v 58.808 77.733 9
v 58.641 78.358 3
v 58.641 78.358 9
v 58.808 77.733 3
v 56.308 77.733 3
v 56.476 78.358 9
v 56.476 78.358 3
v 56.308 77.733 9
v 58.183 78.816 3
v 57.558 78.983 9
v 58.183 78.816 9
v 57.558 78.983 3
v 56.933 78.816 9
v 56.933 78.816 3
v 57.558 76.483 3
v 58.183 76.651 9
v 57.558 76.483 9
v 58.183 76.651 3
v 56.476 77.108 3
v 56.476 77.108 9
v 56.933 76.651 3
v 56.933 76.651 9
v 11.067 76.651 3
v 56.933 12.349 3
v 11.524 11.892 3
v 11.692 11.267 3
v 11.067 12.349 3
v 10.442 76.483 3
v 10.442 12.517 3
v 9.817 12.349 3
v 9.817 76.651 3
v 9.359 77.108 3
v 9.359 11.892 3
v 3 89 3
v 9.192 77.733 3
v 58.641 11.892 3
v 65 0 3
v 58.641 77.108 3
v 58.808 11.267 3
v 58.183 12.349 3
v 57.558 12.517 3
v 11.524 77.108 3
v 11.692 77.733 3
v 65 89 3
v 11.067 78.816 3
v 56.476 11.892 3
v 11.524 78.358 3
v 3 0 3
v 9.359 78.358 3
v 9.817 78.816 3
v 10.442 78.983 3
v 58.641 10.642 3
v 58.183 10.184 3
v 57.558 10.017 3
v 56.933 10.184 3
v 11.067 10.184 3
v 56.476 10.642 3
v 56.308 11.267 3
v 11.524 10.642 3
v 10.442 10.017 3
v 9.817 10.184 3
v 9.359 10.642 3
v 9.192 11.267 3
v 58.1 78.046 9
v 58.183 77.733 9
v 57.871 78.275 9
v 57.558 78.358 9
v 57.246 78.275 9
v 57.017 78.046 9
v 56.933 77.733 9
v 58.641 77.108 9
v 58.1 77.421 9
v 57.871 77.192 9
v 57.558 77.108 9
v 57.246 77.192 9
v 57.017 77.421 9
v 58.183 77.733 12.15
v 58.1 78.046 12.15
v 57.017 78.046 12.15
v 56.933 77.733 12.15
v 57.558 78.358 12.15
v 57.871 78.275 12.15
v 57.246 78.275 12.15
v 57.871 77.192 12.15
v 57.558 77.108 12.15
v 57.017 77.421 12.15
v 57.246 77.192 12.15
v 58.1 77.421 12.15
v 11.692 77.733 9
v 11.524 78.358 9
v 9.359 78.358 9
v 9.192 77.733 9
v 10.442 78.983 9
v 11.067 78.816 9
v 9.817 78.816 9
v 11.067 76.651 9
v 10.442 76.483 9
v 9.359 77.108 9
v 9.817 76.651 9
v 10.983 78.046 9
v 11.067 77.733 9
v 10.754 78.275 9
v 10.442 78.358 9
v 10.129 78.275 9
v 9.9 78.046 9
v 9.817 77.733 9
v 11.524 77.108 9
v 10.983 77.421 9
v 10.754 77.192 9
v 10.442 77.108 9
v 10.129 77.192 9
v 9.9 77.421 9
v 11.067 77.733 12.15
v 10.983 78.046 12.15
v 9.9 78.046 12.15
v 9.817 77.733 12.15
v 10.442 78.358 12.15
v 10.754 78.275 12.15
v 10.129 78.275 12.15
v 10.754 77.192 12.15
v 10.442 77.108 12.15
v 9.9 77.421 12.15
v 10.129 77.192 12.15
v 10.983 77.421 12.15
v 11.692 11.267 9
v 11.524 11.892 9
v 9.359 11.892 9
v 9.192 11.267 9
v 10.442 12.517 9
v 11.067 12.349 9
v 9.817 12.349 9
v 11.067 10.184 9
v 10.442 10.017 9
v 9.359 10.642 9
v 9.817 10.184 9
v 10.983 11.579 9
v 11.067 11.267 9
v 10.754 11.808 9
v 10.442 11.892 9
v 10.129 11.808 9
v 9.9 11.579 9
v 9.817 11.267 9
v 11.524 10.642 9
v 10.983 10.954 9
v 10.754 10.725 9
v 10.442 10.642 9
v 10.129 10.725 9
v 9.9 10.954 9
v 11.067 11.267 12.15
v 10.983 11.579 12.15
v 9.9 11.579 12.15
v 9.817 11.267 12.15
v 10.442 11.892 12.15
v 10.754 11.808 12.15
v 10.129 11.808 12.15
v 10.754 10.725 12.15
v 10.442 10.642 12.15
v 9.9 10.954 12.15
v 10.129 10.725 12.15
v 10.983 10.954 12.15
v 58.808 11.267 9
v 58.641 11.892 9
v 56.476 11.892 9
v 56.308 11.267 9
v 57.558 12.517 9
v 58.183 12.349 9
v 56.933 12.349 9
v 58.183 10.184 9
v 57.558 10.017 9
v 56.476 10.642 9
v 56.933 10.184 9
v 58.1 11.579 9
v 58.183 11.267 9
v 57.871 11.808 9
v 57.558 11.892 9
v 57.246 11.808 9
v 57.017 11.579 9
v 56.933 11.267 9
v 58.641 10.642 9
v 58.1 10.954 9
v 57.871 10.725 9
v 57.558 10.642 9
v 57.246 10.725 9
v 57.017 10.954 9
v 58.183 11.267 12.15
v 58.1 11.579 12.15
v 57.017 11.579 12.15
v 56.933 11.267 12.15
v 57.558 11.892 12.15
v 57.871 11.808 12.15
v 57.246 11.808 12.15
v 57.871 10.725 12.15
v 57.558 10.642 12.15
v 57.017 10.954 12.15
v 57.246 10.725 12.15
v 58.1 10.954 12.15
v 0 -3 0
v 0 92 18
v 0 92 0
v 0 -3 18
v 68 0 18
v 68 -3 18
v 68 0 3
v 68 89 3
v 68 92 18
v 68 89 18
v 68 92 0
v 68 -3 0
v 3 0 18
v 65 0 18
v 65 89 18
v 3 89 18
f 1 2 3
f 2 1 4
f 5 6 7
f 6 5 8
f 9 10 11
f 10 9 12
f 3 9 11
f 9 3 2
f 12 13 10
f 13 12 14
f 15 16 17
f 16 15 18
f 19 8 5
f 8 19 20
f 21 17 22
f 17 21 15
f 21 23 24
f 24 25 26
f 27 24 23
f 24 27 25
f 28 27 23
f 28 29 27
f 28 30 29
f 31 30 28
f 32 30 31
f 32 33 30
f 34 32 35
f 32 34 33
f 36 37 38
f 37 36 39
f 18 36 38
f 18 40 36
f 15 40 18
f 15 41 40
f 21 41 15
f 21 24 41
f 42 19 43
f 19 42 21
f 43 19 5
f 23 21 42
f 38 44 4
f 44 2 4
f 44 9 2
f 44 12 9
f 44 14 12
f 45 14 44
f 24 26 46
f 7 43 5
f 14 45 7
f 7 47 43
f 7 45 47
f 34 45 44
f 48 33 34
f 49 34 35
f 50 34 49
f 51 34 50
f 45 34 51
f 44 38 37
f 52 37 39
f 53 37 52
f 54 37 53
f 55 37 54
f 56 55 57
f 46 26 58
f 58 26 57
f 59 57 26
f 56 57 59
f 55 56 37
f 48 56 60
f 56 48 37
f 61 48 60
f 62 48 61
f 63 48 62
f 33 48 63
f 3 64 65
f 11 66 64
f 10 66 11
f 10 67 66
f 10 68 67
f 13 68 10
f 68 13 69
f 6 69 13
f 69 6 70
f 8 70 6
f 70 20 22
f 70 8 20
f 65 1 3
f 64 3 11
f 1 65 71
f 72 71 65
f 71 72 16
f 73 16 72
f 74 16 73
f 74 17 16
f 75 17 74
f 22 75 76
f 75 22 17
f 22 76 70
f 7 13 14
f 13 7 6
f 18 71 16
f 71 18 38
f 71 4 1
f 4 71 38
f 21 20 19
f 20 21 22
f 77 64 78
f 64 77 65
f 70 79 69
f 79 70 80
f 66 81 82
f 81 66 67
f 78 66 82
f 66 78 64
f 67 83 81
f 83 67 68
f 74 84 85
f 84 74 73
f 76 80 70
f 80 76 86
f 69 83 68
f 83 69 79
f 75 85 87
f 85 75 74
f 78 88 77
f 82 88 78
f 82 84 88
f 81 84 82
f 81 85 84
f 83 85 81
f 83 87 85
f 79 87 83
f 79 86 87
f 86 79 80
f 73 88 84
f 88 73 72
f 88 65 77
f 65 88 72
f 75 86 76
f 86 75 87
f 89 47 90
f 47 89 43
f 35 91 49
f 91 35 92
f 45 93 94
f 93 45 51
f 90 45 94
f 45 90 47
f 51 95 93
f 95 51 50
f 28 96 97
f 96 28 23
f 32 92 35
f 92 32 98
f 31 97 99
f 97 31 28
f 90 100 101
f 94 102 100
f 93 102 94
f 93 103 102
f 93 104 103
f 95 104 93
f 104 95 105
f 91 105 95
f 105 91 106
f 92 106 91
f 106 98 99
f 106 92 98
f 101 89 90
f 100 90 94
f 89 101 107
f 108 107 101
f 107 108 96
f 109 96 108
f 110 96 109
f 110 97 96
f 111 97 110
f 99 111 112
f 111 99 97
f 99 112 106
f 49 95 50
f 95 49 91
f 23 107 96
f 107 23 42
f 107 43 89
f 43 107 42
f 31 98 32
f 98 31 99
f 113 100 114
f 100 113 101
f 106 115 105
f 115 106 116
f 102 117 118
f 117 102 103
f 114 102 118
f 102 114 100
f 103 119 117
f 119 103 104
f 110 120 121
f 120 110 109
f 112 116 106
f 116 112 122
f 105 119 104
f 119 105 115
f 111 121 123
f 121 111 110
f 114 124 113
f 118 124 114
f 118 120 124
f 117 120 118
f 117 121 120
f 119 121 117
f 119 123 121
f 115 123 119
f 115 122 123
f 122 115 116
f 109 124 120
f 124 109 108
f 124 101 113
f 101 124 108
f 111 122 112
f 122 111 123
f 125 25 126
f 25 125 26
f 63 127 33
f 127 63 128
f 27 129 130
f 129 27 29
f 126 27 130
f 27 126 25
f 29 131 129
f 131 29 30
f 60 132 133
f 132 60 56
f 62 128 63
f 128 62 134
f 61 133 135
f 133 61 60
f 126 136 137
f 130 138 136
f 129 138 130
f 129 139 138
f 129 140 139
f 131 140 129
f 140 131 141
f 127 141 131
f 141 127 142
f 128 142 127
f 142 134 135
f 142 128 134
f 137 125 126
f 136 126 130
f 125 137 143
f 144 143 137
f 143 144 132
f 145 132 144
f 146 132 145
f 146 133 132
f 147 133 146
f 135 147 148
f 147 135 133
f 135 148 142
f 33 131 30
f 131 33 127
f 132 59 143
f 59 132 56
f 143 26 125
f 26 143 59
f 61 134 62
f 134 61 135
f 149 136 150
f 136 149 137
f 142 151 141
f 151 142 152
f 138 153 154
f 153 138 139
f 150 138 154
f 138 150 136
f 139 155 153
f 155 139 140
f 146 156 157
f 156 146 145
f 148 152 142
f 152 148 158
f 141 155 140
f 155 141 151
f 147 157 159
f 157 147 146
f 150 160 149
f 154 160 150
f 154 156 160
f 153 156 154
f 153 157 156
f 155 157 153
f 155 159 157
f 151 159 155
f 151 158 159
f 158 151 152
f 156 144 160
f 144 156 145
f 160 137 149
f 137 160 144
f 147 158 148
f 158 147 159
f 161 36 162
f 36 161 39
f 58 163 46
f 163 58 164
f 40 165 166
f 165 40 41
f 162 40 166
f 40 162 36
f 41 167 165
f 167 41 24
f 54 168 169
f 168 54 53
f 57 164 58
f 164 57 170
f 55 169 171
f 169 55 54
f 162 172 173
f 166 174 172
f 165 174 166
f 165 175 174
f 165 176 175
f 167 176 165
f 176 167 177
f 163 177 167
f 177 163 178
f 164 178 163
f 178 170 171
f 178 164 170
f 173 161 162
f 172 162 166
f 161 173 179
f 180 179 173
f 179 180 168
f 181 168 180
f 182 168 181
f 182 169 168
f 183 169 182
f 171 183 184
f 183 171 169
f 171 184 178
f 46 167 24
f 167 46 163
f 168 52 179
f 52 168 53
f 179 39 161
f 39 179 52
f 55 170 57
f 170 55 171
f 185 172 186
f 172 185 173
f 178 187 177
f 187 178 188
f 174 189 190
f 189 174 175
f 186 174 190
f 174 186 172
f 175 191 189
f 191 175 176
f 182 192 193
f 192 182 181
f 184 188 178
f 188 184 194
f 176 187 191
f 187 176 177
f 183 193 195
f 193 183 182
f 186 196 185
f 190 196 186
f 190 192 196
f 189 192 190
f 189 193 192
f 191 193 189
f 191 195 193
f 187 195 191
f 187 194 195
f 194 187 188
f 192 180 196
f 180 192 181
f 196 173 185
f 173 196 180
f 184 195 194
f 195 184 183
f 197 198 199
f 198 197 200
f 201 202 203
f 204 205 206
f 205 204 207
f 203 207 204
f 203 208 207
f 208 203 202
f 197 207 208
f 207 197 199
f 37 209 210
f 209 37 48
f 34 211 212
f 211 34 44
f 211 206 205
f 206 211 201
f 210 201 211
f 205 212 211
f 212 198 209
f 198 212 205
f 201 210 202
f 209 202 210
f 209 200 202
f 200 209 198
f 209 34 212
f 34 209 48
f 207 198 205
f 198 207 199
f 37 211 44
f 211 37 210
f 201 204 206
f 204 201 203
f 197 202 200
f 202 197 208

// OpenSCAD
// file: case-module.scad
include <proto-board-module.scad>;

caseSecureHoleConnectionPinWidth = 1.25;
caseSecureHoleConnectionPinHeight = 6;
caseSecureHoleConnectionBaseWidth = caseSecureHoleConnectionPinWidth * 2;
caseSecureHoleConnectionBaseHeight = 6;
caseWidth = 68;
caseHeight = 3;
caseLength = 89;
caseWallHeight = 18;
caseWallWidth = 3;

module pinHolder () {
  baseHeight = protoBoardHeight + 1;
  cylinder (
    h = caseSecureHoleConnectionBaseHeight,
    r = caseSecureHoleConnectionBaseWidth / 2,
    $fn = 12
  );
  translate([0, 0, baseHeight])
    cylinder (
      h = caseSecureHoleConnectionPinHeight + 1,
      r = caseSecureHoleConnectionPinWidth / 2,
    $fn = 12
    );
}

module case (color = "LightSeaGreen") {
  color (color) {
    // Base
    cube([caseWidth, caseLength, caseHeight]);
    // Walls
    rotate([0, 0, 0]) cube([caseWallWidth, caseLength, caseWallHeight]);
    translate([caseWidth, caseLength, 0])
      rotate([0, 0, 90]) 
        cube([caseWallWidth, caseWidth, caseWallHeight]);
    translate([caseWidth, caseLength, 0]) 
      rotate([0, 0, 180]) 
        cube([caseWallWidth, caseLength, caseWallHeight]);
    translate([0, 0, 0])
      rotate([0, 0, 270])
        cube([caseWallWidth, caseWidth, caseWallHeight]);
    // Connection Pins Base
    // Top right pin holder
    translate([
        caseWidth - (caseSecureHoleConnectionBaseWidth / 2) - ((caseWidth - protoBoardWidth) / 2) - (protoBoardSecureHoleInset / 3),
        caseLength - (caseSecureHoleConnectionBaseWidth / 2) - ((caseLength - protoBoardLength) / 2) - (protoBoardSecureHoleInset / 3),
        caseHeight
    ]) pinHolder();
    // Top left pin holder
    translate([
        0 + (caseSecureHoleConnectionBaseWidth / 2) + ((caseWidth - protoBoardWidth) / 2) + (protoBoardSecureHoleInset / 3),
        caseLength - (caseSecureHoleConnectionBaseWidth / 2) - ((caseLength - protoBoardLength) / 2) - (protoBoardSecureHoleInset / 3),
        caseHeight
    ]) pinHolder();
    // Bottom left pin holder
    translate([
        0 + (caseSecureHoleConnectionBaseWidth / 2) + ((caseWidth - protoBoardWidth) / 2) + (protoBoardSecureHoleInset / 3),
        0 + (caseSecureHoleConnectionBaseWidth / 2) + ((caseLength - protoBoardLength) / 2) + (protoBoardSecureHoleInset / 3),
        caseHeight
    ]) pinHolder();
    // Bottom right pin holder
    translate([
        caseWidth - (caseSecureHoleConnectionBaseWidth / 2)  - ((caseWidth - protoBoardWidth) / 2) - (protoBoardSecureHoleInset / 3),
        0 + (caseSecureHoleConnectionBaseWidth / 2) + ((caseLength - protoBoardLength) / 2) + (protoBoardSecureHoleInset / 3),
        caseHeight
    ]) pinHolder();
  }
}
// file: proto-board-module.scad
protoBoardSecureHoleInset = 2;
protoBoardSecureHoleSize = 2;
protoBoardWidth = 50.95;
protoBoardHeight = 1.15;
protoBoardLength = 70.3;

module pinHole () {
  cylinder (
    h = protoBoardHeight + 2,
    r = protoBoardSecureHoleSize / 2,
    $fn = 12
  );
}

module protoBoard () {
  color ("DarkGreen", 1) {
    difference() {
      cube([
        protoBoardWidth,
        protoBoardLength,
        protoBoardHeight
      ]);
      // top right pin
      translate([
        protoBoardWidth - protoBoardSecureHoleInset,
        protoBoardLength - protoBoardSecureHoleInset,
        -0.5
      ]) pinHole();
      // top left pin
      translate([
        0 + protoBoardSecureHoleInset,
        protoBoardLength - protoBoardSecureHoleInset,
        -0.5
      ]) pinHole();
      // bottom left pin
      translate([
        0 + protoBoardSecureHoleInset,
        0 + protoBoardSecureHoleInset,
        -0.5
      ]) pinHole();
      // bottom right pin
      translate([
        protoBoardWidth - protoBoardSecureHoleInset,
        0 + protoBoardSecureHoleInset,
        -0.5
      ]) pinHole();
    }
  }
}

/*translate([
  0,
  0,
  0
]) protoBoard();*/
// main file
include <proto-board-module.scad>;
include <case-module.scad>;

translate([
  0,
  0,
  0
]) case();

/*translate([
  (caseWidth - protoBoardWidth) / 2,
  (caseLength - protoBoardLength) / 2,
  caseSecureHoleConnectionBaseHeight + caseHeight
]) protoBoard();*/
